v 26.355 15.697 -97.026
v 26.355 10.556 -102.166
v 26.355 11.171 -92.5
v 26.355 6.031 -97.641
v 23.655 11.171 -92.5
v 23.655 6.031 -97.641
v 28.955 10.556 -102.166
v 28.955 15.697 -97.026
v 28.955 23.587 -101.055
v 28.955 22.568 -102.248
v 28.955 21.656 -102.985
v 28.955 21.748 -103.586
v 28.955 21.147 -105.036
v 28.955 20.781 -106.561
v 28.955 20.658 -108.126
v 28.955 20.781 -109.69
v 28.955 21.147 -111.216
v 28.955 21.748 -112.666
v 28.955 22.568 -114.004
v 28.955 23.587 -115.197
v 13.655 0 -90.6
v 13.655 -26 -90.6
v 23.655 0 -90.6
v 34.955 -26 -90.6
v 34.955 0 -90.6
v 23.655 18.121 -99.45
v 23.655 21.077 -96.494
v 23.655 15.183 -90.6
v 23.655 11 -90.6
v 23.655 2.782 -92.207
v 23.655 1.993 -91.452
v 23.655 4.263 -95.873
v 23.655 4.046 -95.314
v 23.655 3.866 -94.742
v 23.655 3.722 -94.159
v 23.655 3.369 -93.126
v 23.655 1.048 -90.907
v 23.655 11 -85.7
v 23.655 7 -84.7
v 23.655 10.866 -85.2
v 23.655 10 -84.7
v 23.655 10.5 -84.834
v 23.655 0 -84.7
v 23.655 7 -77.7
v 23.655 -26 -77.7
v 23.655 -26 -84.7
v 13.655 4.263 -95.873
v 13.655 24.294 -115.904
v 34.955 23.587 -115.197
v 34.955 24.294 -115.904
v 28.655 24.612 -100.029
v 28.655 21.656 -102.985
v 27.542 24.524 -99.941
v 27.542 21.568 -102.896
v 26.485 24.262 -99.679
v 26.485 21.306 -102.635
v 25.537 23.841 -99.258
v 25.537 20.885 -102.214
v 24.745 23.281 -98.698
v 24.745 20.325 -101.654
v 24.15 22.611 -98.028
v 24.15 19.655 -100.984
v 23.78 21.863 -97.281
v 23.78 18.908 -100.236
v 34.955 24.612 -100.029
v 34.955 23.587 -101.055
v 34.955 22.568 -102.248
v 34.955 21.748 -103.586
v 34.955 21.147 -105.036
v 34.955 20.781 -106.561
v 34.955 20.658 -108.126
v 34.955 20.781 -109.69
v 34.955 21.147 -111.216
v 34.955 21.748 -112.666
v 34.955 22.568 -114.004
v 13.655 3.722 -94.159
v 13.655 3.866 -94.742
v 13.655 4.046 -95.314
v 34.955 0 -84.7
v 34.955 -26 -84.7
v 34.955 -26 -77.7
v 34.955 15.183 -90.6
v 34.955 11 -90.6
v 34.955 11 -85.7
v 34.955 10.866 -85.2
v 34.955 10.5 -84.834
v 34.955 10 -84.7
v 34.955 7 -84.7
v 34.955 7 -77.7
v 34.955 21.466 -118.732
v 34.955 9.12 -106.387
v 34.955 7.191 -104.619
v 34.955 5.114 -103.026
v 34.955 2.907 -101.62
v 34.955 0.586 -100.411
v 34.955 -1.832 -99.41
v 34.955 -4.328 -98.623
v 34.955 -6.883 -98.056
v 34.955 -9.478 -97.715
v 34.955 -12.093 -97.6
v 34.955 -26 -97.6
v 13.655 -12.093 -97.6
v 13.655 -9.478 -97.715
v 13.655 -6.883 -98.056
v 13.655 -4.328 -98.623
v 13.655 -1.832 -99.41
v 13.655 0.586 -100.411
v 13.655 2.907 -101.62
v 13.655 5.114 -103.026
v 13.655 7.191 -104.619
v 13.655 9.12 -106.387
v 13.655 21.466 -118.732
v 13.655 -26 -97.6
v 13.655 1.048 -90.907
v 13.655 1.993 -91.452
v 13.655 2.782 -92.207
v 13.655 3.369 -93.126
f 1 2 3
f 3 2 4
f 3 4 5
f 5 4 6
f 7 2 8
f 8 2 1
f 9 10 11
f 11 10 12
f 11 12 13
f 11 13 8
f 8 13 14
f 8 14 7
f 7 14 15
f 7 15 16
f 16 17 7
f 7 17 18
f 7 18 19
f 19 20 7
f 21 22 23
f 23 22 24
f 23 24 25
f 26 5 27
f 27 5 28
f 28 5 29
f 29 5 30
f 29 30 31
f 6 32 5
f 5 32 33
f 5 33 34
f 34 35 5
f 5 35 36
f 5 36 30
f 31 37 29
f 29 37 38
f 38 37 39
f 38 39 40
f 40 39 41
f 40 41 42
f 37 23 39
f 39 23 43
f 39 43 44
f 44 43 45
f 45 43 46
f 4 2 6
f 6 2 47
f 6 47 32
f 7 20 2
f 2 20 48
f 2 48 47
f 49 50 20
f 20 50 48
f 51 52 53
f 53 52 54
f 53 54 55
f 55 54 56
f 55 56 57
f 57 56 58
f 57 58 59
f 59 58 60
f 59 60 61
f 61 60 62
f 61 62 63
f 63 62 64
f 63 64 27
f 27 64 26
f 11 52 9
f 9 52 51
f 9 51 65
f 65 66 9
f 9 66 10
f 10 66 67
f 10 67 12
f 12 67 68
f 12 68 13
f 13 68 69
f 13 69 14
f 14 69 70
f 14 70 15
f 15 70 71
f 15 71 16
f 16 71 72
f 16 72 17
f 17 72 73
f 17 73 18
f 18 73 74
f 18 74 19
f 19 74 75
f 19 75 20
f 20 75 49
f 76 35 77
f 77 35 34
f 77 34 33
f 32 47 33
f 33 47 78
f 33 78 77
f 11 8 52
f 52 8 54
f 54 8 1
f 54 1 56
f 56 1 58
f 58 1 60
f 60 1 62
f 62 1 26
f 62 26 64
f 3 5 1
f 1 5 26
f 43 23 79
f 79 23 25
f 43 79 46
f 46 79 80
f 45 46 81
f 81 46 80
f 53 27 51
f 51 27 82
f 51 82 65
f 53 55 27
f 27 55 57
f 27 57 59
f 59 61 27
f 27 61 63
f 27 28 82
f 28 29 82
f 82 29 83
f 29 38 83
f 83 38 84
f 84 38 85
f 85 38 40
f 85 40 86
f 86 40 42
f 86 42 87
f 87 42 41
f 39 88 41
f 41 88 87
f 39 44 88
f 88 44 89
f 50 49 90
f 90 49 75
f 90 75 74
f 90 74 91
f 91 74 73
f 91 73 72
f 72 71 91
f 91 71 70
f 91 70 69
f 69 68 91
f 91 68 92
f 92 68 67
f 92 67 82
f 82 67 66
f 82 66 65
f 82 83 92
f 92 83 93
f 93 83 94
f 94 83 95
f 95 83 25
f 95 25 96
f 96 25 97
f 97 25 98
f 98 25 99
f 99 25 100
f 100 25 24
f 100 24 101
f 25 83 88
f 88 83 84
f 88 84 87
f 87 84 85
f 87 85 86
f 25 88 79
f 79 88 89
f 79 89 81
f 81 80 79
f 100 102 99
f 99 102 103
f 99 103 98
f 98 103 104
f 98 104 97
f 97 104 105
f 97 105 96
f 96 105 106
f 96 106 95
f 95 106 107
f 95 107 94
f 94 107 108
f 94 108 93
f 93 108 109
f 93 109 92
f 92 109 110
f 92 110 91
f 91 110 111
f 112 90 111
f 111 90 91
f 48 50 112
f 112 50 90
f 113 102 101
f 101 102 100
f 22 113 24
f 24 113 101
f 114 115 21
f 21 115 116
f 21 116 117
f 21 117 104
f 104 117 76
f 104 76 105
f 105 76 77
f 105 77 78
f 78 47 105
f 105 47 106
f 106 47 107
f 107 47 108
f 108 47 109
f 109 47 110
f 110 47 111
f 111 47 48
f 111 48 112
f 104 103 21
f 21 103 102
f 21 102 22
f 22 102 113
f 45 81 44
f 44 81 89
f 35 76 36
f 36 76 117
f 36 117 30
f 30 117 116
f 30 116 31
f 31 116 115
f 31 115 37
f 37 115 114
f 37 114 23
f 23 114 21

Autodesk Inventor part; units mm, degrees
ref_plane "YZ Plane" through (0, 0, 0) normal (1, 0, 0) x (0, 1, 0)
ref_plane "XZ Plane" through (0, 0, 0) normal (0, 1, 0) x (-1, 0, 0)
ref_plane "XY Plane" through (0, 0, 0) normal (0, 0, 1) x (1, 0, 0)
sketch "Sketch1" plane through (0, 0, 0) normal (0, 1, 0) x (-1, 0, 0)
  line L0 (23.4955, 9.8996) -> (-50.8045, 9.8996)
  line L1 (-50.8045, 9.8996) -> (-50.8045, -84.7004)
  line L2 (-50.8045, -84.7004) -> (23.4955, -84.7004)
  line L3 (23.4955, -84.7004) -> (23.4955, 9.8996)
  line L4 (29.4455, 15.7996) -> (-56.7545, 15.7996)
  line L5 (-56.7545, 15.7996) -> (-56.7545, -90.6004)
  line L6 (-56.7545, -90.6004) -> (29.4455, -90.6004)
  line L7 (29.4455, -90.6004) -> (29.4455, 15.7996)
  line L8 (29.4455, -37.4004) -> (-56.7545, -37.4004) construction
  line L9 (-13.6545, -90.6004) -> (-13.6545, 15.7996) construction
  dimension "d0" = 94.6
  dimension "d1" = 74.3
  dimension "d2" = 106.4
  dimension "d3" = 86.2
extrude "Extrusion1" add sketch "Sketch1" along normal blind 6
fillet "Fillet1" radius 4.5 4 edges at (-23.4955, 3, 9.8996) (50.8045, 3, 9.8996) (50.8045, 3, -84.7004) (-23.4955, 3, -84.7004)
fillet "Fillet2" radius 4.5 4 edges at (56.7545, 3, 15.7996) (-29.4455, 3, 15.7996) (56.7545, 3, -90.6004) (-29.4455, 3, -90.6004)
sketch "Sketch2" plane through (0, 0, 0) normal (0, -1, 0) x (1, 0, 0)
  line L0 (50.8045, -80.2004) -> (50.8045, 5.3996) projected
  arc A0 (46.3045, -84.7004) -> (50.8045, -80.2004) centre (46.3045, -80.2004) ccw projected
  line L1 (-18.9955, -84.7004) -> (46.3045, -84.7004) projected
  arc A1 (-23.4955, -80.2004) -> (-18.9955, -84.7004) centre (-18.9955, -80.2004) ccw projected
  line L2 (-23.4955, 5.3996) -> (-23.4955, -80.2004) projected
  arc A2 (-18.9955, 9.8996) -> (-23.4955, 5.3996) centre (-18.9955, 5.3996) ccw projected
  line L3 (46.3045, 9.8996) -> (-18.9955, 9.8996) projected
  arc A3 (50.8045, 5.3996) -> (46.3045, 9.8996) centre (46.3045, 5.3996) ccw projected
  line L4 (43.8045, -77.7004) -> (-16.4955, -77.7004)
  line L5 (-16.4955, -77.7004) -> (-16.4955, 2.8996)
  line L6 (-16.4955, 2.8996) -> (43.8045, 2.8996)
  line L7 (43.8045, 2.8996) -> (43.8045, -77.7004)
  line L8 (13.6545, -84.7004) -> (13.6545, 9.8996) construction
  line L9 (46.3045, 9.8996) -> (-18.9955, 9.8996) construction
  line L10 (50.8045, -80.2004) -> (50.8045, 5.3996) construction
  line L11 (50.8045, -37.4004) -> (-23.4955, -37.4004) construction
  line L12 (56.7545, 11.2996) -> (56.7545, -86.1004) construction
  point P0 (0, 0)
  dimension "d8" = 5.95
  dimension "d9" = 7
  dimension "d10" = 7
extrude "Extrusion2" add sketch "Sketch2" along normal blind 6
fillet "Fillet3" radius 4.5 4 edges at (43.8045, -3, -77.7004) (43.8045, -3, 2.8996) (-16.4955, -3, 2.8996) (-16.4955, -3, -77.7004)
sketch "Sketch3" plane through (0, 0, 0) normal (0, 1, 0) x (1, 0, 0)
  arc A0 (46.3045, -9.8996) -> (50.8045, -5.3996) centre (46.3045, -5.3996) ccw projected
  line L0 (50.8045, 80.2004) -> (50.8045, -5.3996) projected
  arc A1 (50.8045, 80.2004) -> (46.3045, 84.7004) centre (46.3045, 80.2004) ccw projected
  line L1 (-18.9955, 84.7004) -> (46.3045, 84.7004) projected
  arc A2 (-18.9955, 84.7004) -> (-23.4955, 80.2004) centre (-18.9955, 80.2004) ccw projected
  line L2 (-23.4955, -5.3996) -> (-23.4955, 80.2004) projected
  arc A3 (-23.4955, -5.3996) -> (-18.9955, -9.8996) centre (-18.9955, -5.3996) ccw projected
  line L3 (46.3045, -9.8996) -> (-18.9955, -9.8996) projected
  arc A4 (43.8045, 73.2004) -> (39.3045, 77.7004) centre (39.3045, 73.2004) ccw projected
  line L4 (43.8045, 1.6004) -> (43.8045, 73.2004) projected
  arc A5 (39.3045, -2.8996) -> (43.8045, 1.6004) centre (39.3045, 1.6004) ccw projected
  line L5 (-11.9955, -2.8996) -> (39.3045, -2.8996) projected
  arc A6 (-16.4955, 1.6004) -> (-11.9955, -2.8996) centre (-11.9955, 1.6004) ccw projected
  line L6 (-16.4955, 73.2004) -> (-16.4955, 1.6004) projected
  arc A7 (-11.9955, 77.7004) -> (-16.4955, 73.2004) centre (-11.9955, 73.2004) ccw projected
  line L7 (39.3045, 77.7004) -> (-11.9955, 77.7004) projected
  point P0 (0, 0)
extrude "Extrusion3" add sketch "Sketch3" along normal blind 2
ref_plane "Work Plane1" through (-23.4955, 6, -84.7004) normal (0, 0.7071068, -0.7071068) x (1, 0, 0)
sketch "Sketch5" plane through (-23.4955, 6, -84.7004) normal (0, 0.7071068, -0.7071068) x (1, 0, 0)
  line L0 (4.5, 0) -> (69.8, 0) projected
  line L1 (37.15, 0) -> (37.15, -42.3796) construction
  circle A0 centre (37.15, 1.34) radius 1.34 construction
  line L2 (37.15, 1.34) -> (37.15, -18.66) construction
  line L3 (38.49, 1.34) -> (38.49, -18.66)
  line L4 (35.81, -18.66) -> (35.81, 1.34)
  arc A1 (38.49, 1.34) -> (35.81, 1.34) centre (37.15, 1.34) ccw
  arc A2 (35.81, -18.66) -> (38.49, -18.66) centre (37.15, -18.66) ccw
  point P0 (23.4955, -55.6496)
  point P1 (37.15, -8.66)
  dimension "d20" = 2.68
  dimension "d19" = 90
  dimension "d21" = 20
  dimension "d22" = 2.68
extrude "Extrusion5" cut sketch "Sketch5" along normal mid plane 51.82
sketch "Sketch6" plane through (-23.4955, 6, -84.7004) normal (0, 0.7071068, -0.7071068) x (1, 0, 0)
  arc A0 (38.49, 1.34) -> (35.81, 1.34) centre (37.15, 1.34) ccw projected
  line L0 (38.49, 0) -> (38.49, 1.34) projected
  arc A1 (38.49, 1.34) -> (35.81, 1.34) centre (37.15, 1.34) ccw projected
  line L1 (35.81, 1.34) -> (35.81, 0) projected
  line L2 (4.5, 0) -> (35.81, 0) projected
  line L3 (4.5, 2.8284) -> (4.5, 0) projected
  line L4 (4.5, 2.8284) -> (69.8, 2.8284) projected
  line L5 (69.8, 0) -> (69.8, 2.8284) projected
  line L6 (38.49, 0) -> (69.8, 0) projected
  line L7 (75.75, 8.4146) -> (-1.45, 8.4146) projected
  line L8 (74.9473, 2.68) -> (-18.0058, 2.68) construction
  line L9 (0, -55.225) -> (0, 5.3033) construction
  line L10 (90.8097, 9.1284) -> (-67.1811, 9.1284) construction
  line L11 (37.15, 2.68) -> (37.15, 37.6448) construction
  line L12 (58.45, 9.1284) -> (15.85, 9.1284)
  line L13 (15.85, 9.1284) -> (15.85, 13.1284)
  line L14 (15.85, 13.1284) -> (58.45, 13.1284)
  line L15 (58.45, 13.1284) -> (58.45, 9.1284)
  point P0 (23.4955, -55.6496)
  dimension "d25" = 6.3
  dimension "d26" = 42.6
  dimension "d27" = 4
extrude "Extrusion6" add sketch "Sketch6" along normal blind 35 contours L12 L13 L14 L15
sketch "Sketch7" plane through (-23.4955, 30.7487, -109.4492) normal (0, 0.7071068, -0.7071068) x (-1, 0, 0)
  line L0 (-15.85, -13.1284) -> (-15.85, -9.1284) projected
  line L1 (-58.45, -9.1284) -> (-58.45, -13.1284) projected
  point P0 (-23.4955, 55.6496)
  point P1 (-15.85, -11.1284)
  point P2 (-58.45, -11.1284)
  dimension "d30" = 42.6
sketch "Sketch8" plane through (34.9545, -3.2832, -93.9836) normal (1, 0, 0) x (0, 0.7071068, -0.7071068)
  line L0 (-0.0707, 4.7139) -> (-3.2527, 7.8958) projected
  line L1 (0.9899, 12.1385) -> (4.1719, 8.9565) projected
  line L2 (0, 0) -> (35, 0) projected
  line L3 (-0.0707, 4.7139) -> (-14.2134, -9.4288) construction
  line L4 (0, 4) -> (35, 4) projected
  line L5 (0, 4) -> (0, 0) projected
  line L6 (4.1719, 8.9565) -> (-4.7846, 0)
  line L7 (-4.7846, 0) -> (0, 0)
  line L8 (0, 0) -> (0, 4) projected
  line L9 (0, 0) -> (0, 4)
  line L10 (4.1719, 8.9565) -> (4.1719, 4)
  line L11 (0, 4) -> (35, 4) projected
  line L12 (4.1719, 4) -> (0, 4)
  line L13 (-0.0707, 4.7139) -> (4.1719, 8.9565) projected
  point P0 (-64.1349, 68.778)
  point P1 (4.1719, 4)
extrude "Extrusion7" add sketch "Sketch8" against normal blind 42.6
sketch "Sketch9" plane through (34.9545, -6.6664, -90.6004) normal (1, 0, 0) x (0, 0, -1)
  line L0 (0, 6.6664) -> (0, 0) projected
  line L1 (0, 0) -> (28.1319, 28.1319) projected
  line L2 (0, 0) -> (0, 6.6664) projected
  line L3 (0, 0) -> (0, -20)
  line L4 (0, -20) -> (5, -20)
  line L5 (5, -20) -> (5, 5)
  line L6 (0, 0) -> (28.1319, 28.1319) projected
  line L7 (5, 5) -> (0, 0)
  point P0 (-90.6004, 6.6664)
  point P1 (5, 5)
  dimension "d33" = 5
  dimension "d34" = 20
extrude "Extrusion8" add sketch "Sketch9" against normal blind 42.6
sketch "Sketch10" plane through (-7.6455, 24.294, -115.9039) normal (0, 0.7071068, 0.7071068) x (1, 0, 0)
  line L0 (0, -30.8281) -> (42.6, -30.8281) projected
  line L1 (42.6, -30.8281) -> (42.6, 0) projected
  line L2 (0, 0) -> (42.6, 0) projected
  line L3 (0, -30.8281) -> (0, 0) projected
  line L4 (42.6, -30.8281) -> (0, -30.8281) projected
  line L5 (0, -30.8281) -> (5, -30.8281)
  line L6 (5, -30.8281) -> (5, 0)
  line L7 (5, 0) -> (0, 0)
  line L8 (0, 0) -> (0, -30.8281)
  line L9 (42.6, 0) -> (0, 0) projected
  line L10 (37.6, 0) -> (42.6, 0)
  line L11 (42.6, 0) -> (42.6, -30.8281)
  line L12 (42.6, -30.8281) -> (37.6, -30.8281)
  line L13 (37.6, -30.8281) -> (37.6, 0)
  point P0 (7.6455, -99.1349)
  point P1 (37.6, 0)
  point P2 (37.6, -30.8281)
  dimension "d37" = 5
  dimension "d38" = 5
extrude "Extrusion9" add sketch "Sketch10" along normal blind 19 contours L3 L2 L6 L0 | L13 L2 L1 L0
sketch "Sketch11" plane through (-7.6455, 37.729, -102.4689) normal (0, 0.7071068, 0.7071068) x (1, 0, 0)
  line L0 (0, -30.8281) -> (5, -30.8281) projected
  line L1 (5, 0) -> (0, 0) projected
  point P0 (7.6455, -99.1349)
  point P1 (2.5, 0)
  point P2 (2.5, -30.8281)
  dimension "d41" = 30.8281
sketch "Sketch12" plane through (-2.6455, 2.4952, -94.1052) normal (1, 0, 0) x (0, -0.7071068, -0.7071068)
  line L0 (0, 30.8281) -> (0, 0) projected
  line L1 (0, 30.8281) -> (-19, 30.8281) projected
  line L2 (-19, 0) -> (-19, 30.8281) projected
  line L3 (-4.9565, 0) -> (-19, 0) projected
  line L4 (0, 0) -> (-4.9565, 0) projected
  line L5 (-19, 30.8281) -> (-15, 30.8281)
  line L6 (-15, 30.8281) -> (-15, 0)
  line L7 (-15, 0) -> (-19, 0)
  line L8 (-19, 0) -> (-19, 30.8281)
  point P0 (-64.778, -68.3068)
  dimension "d42" = 15
extrude "Extrusion10" add sketch "Sketch12" along normal blind 8.5 contours L6 L3 L2 L1
sketch "Sketch13" plane through (29.9545, 2.4952, -94.1052) normal (-1, 0, 0) x (0, 0.7071068, 0.7071068)
  line L0 (0, 0) -> (0, 30.8281) projected
  line L1 (4.9565, 0) -> (0, 0) projected
  line L2 (4.9565, 0) -> (19, 0) projected
  line L3 (19, 30.8281) -> (19, 0) projected
  line L4 (0, 30.8281) -> (19, 30.8281) projected
  line L5 (19, 30.8281) -> (7.45, 30.8281)
  line L6 (7.45, 30.8281) -> (7.45, 0)
  line L7 (7.45, 0) -> (19, 0)
  line L8 (19, 0) -> (19, 30.8281)
  point P0 (64.778, -68.3068)
  point P1 (7.45, 30.8281)
  dimension "d45" = 7.45
extrude "Extrusion11" add sketch "Sketch13" along normal blind 8.5 contours L4 L3 L2 L6
sketch "Sketch14" plane through (34.9545, -26.6664, -90.6004) normal (1, 0, 0) x (0, 0, -1)
  line L0 (5, 25) -> (28.1319, 48.1319) projected
  line L1 (28.1319, 48.1319) -> (11.8685, 64.3954) projected
  line L2 (-9.9303, 42.5967) -> (11.8685, 64.3954) projected
  line L3 (0, 32.6664) -> (-9.9303, 42.5967) projected
  line L4 (0, 26.6664) -> (0, 32.6664) projected
  line L5 (0, 26.6664) -> (0, 0) projected
  line L6 (0, 0) -> (5, 0) projected
  line L7 (5, 0) -> (5, 25) projected
  line L8 (0, 32.6664) -> (3.5048, 29.1616) construction
  line L9 (-9.9303, 42.5967) -> (11.8685, 64.3954) construction
  line L10 (-7.1018, 39.7682) -> (14.6969, 61.567) construction
  line L11 (0, 32.6664) -> (-1.7632, 34.4296) projected
  line L12 (0, 52.5269) -> (0, 32.6664)
  line L13 (-1.7632, 34.4296) -> (-9.9303, 42.5967) projected
  line L14 (0, 32.6664) -> (-9.9303, 42.5967)
  line L15 (-9.9303, 42.5967) -> (0, 52.5269)
  point P0 (-90.6004, 26.6664)
  point P1 (11.8685, 64.3954)
  point P2 (0, 52.5269)
extrude "Extrusion12" cut sketch "Sketch14" against normal blind 100 contours L12 L3 L2
sketch "Sketch15" plane through (-23.4955, 30.7487, -109.4492) normal (0, 0.7071068, -0.7071068) x (-1, 0, 0)
  line L0 (-58.45, -13.1284) -> (-15.85, -13.1284) projected
  line L1 (-15.85, -13.1284) -> (-15.85, 9.8716) projected
  line L2 (-15.85, 9.8716) -> (-29.35, 9.8716) projected
  line L3 (-29.35, 5.8716) -> (-29.35, 9.8716) projected
  line L4 (-20.85, 5.8716) -> (-29.35, 5.8716) projected
  line L5 (-20.85, -9.1284) -> (-20.85, 5.8716) projected
  line L6 (-20.85, -9.1284) -> (-53.45, -9.1284) projected
  line L7 (-53.45, -9.1284) -> (-53.45, -1.6784) projected
  line L8 (-53.45, -1.6784) -> (-44.95, -1.6784) projected
  line L9 (-44.95, 9.8716) -> (-44.95, -1.6784) projected
  line L10 (-58.45, 9.8716) -> (-44.95, 9.8716) projected
  line L11 (-58.45, -13.1284) -> (-58.45, 9.8716) projected
  line L12 (-58.45, 9.8716) -> (-44.95, 9.8716)
  line L13 (-44.95, 9.8716) -> (-44.95, 2.3216)
  line L14 (-44.95, 2.3216) -> (-58.45, 2.3216)
  line L15 (-58.45, 2.3216) -> (-58.45, 9.8716)
  point P0 (-23.4955, 55.6496)
  point P1 (-51.7, 2.3216)
  point P2 (-58.45, 2.3216)
  dimension "d52" = 4
extrude "Extrusion13" cut sketch "Sketch15" against normal blind 100 contours L11 L10 L9 L14
sketch "Sketch16" plane through (-2.6455, 24.294, -115.9039) normal (0, 0.7071068, 0.7071068) x (1, 0, 0)
  line L0 (32.6, -30.8281) -> (0, -30.8281) projected
  line L1 (8.5, -20.7846) -> (0, -20.7846) projected
  point P0 (2.6455, -99.1349)
  dimension "d55" = 10.0435
sketch "Sketch17" plane through (-2.6455, 6, -90.6004) normal (1, 0, 0) x (0, 0, -1)
  line L0 (0, 14.2037) -> (0, 0) projected
  line L1 (3.5048, -3.5048) -> (0, 0) projected
  line L2 (25.3035, 18.294) -> (3.5048, -3.5048) projected
  line L3 (25.3035, 18.294) -> (14.6969, 28.9006) projected
  line L4 (14.6969, 28.9006) -> (0, 14.2037) projected
  line L5 (5.6261, -1.3835) -> (3.5048, -3.5048)
  line L6 (3.5048, -3.5048) -> (0, 0)
  line L7 (0, 0) -> (2.1213, 2.1213)
  line L8 (2.1213, 2.1213) -> (5.6261, -1.3835)
  point P0 (-90.6004, -6)
  dimension "d56" = 3
extrude "Extrusion14" add sketch "Sketch17" along normal blind 34.75 contours L7 L8 L2 L1
sketch "Sketch18" plane through (0, -6, 0) normal (0, -1, 0) x (1, 0, 0)
  line L0 (-18.9955, -84.7004) -> (46.3045, -84.7004) projected
  line L1 (39.3045, -77.7004) -> (-11.9955, -77.7004) projected
  line L2 (-7.6455, -95.6004) -> (-7.6455, -90.6004) projected
  line L3 (34.9545, -90.6004) -> (34.9545, -95.6004) projected
  line L4 (-18.9955, -84.7004) -> (46.3045, -84.7004) projected
  line L5 (-7.6455, -84.7004) -> (34.9545, -84.7004)
  line L6 (34.9545, -84.7004) -> (34.9545, -77.7004)
  line L7 (34.9545, -77.7004) -> (-7.6455, -77.7004)
  line L8 (-7.6455, -77.7004) -> (-7.6455, -84.7004)
  point P0 (0, 0)
extrude "Extrusion15" add sketch "Sketch18" along normal blind 20
fillet "Fillet5" radius 5 2 edges at (5.8545, 36.3148, -103.8831) (21.4545, 30.9761, -109.2218)
sketch "Sketch19" plane through (0, -6, 0) normal (0, -1, 0) x (1, 0, 0)
  line L0 (34.9545, -118.7324) -> (-7.6455, -118.7324) projected
  line L1 (34.9545, -95.6004) -> (34.9545, -118.7324) projected
  line L2 (34.9545, -77.7004) -> (-7.6455, -77.7004) projected
  line L3 (34.9545, -84.7004) -> (34.9545, -77.7004) projected
  line L4 (-7.6455, -77.7004) -> (-7.6455, -84.7004) projected
  line L5 (-7.6455, -95.6004) -> (-7.6455, -118.7324) projected
  line L6 (34.9545, -118.7324) -> (-7.6455, -118.7324)
  line L7 (-7.6455, -118.7324) -> (-7.6455, -77.7004)
  line L8 (-7.6455, -77.7004) -> (34.9545, -77.7004)
  line L9 (34.9545, -77.7004) -> (34.9545, -118.7324)
  point P0 (0, 0)
  point P1 (34.9545, -84.7004)
  point P2 (-7.6455, -84.7004)
extrude "Extrusion16" cut sketch "Sketch19" along normal mid plane 100 keep common part
sketch "Sketch20" plane through (34.9545, 2, -77.7004) normal (1, 0, 0) x (0, 0, -1)
  line L0 (7, -28) -> (0, -28) projected
  line L1 (7, -2) -> (7, -28) construction
  line L2 (7, -28) -> (31.0161, -28) construction
  line L3 (17.9, -28.6664) -> (12.9, -28.6664) projected
  line L4 (12.9, -28.6664) -> (17.9, -28.6664)
  line L5 (17.9, -28.6664) -> (17.9, -28)
  line L6 (17.9, -28) -> (12.9, -28)
  line L7 (12.9, -28) -> (12.9, -28.6664)
  point P0 (-77.7004, -2)
  point P1 (17.9, -28.6664)
extrude "Extrusion17" cut sketch "Sketch20" against normal blind 100
sketch "Sketch21" plane through (0, 6, 0) normal (0, 1, 0) x (1, 0, 0)
  line L0 (-7.6455, 84.7004) -> (-7.6455, 90.6004) projected
  line L1 (-7.6455, 84.7004) -> (12.3145, 84.7004) projected
  line L2 (12.3145, 84.7004) -> (12.3145, 86.5955) projected
  ellipse E0 centre (13.6545, 86.5955) end of major axis (13.6545, 88.4905) minor radius 1.34 (14.9945, 86.5955) -> (12.3145, 86.5955) ccw projected
  line L3 (14.9945, 86.5955) -> (14.9945, 84.7004) projected
  line L4 (14.9945, 84.7004) -> (34.9545, 84.7004) projected
  line L5 (34.9545, 90.6004) -> (34.9545, 84.7004) projected
  line L6 (34.9545, 90.6004) -> (29.9545, 90.6004) projected
  line L7 (29.9545, 90.6004) -> (-2.6455, 90.6004) projected
  line L8 (-2.6455, 90.6004) -> (-7.6455, 90.6004) projected
  point P0 (0, 0)
extrude "Extrusion18" add sketch "Sketch21" along normal blind 5
sketch "Sketch22" plane through (0, 2, 0) normal (0, 1, 0) x (1, 0, 0)
  line L0 (-7.6455, 77.7004) -> (-7.6455, 84.7004) projected
  line L1 (-7.6455, 77.7004) -> (12.3145, 77.7004) projected
  line L2 (12.3145, 77.7004) -> (12.3145, 82.5955) projected
  ellipse E0 centre (13.6545, 82.5955) end of major axis (13.6545, 84.4905) minor radius 1.34 (14.9945, 82.5955) -> (12.3145, 82.5955) ccw projected
  line L3 (14.9945, 82.5955) -> (14.9945, 77.7004) projected
  line L4 (14.9945, 77.7004) -> (34.9545, 77.7004) projected
  line L5 (34.9545, 84.7004) -> (34.9545, 77.7004) projected
  line L6 (-7.6455, 84.7004) -> (34.9545, 84.7004) projected
  point P0 (0, 0)
extrude "Extrusion19" add sketch "Sketch22" along normal blind 5
sketch "Sketch23" plane through (-23.4955, 6, -84.7004) normal (0, 0.7071068, -0.7071068) x (1, 0, 0)
  arc A0 (38.49, 1.34) -> (35.81, 1.34) centre (37.15, 1.34) ccw projected
  line L0 (37.15, 1.34) -> (37.15, -18.66) construction
  line L1 (35.81, 1.34) -> (35.81, -18.66)
  line L2 (38.49, -18.66) -> (38.49, 1.34)
  arc A1 (38.49, 1.34) -> (35.81, 1.34) centre (37.15, 1.34) ccw
  arc A2 (35.81, -18.66) -> (38.49, -18.66) centre (37.15, -18.66) ccw
  point P0 (23.4955, -55.6496)
  point P1 (37.15, -8.66)
  dimension "d70" = 20
extrude "Extrusion20" cut sketch "Sketch23" along normal mid plane 100
sketch "Sketch24" plane through (-2.6455, 11, -90.6004) normal (1, 0, 0) x (0, 0, -1)
  line L0 (2.1213, -2.8787) -> (5.6261, -6.3835) projected
  line L1 (25.3035, 13.294) -> (5.6261, -6.3835) projected
  line L2 (25.3035, 13.294) -> (14.6969, 23.9006) projected
  line L3 (14.6969, 23.9006) -> (0, 9.2037) projected
  line L4 (0, 9.2037) -> (0, 0) projected
  line L5 (0, 0) -> (0, -5) projected
  line L6 (0, -5) -> (2.1213, -2.8787) projected
  line L7 (0, -0.7574) -> (2.1213, -2.8787)
  line L8 (0, -0.7574) -> (0, -5)
  line L9 (0, -11) -> (-5.9, -11) projected
  line L10 (0, -5) -> (2.1213, -2.8787)
  point P0 (-90.6004, -11)
extrude "Extrusion21" add sketch "Sketch24" along normal blind 33.25 contours L6 L5 L7
sketch "Sketch25" plane through (-23.4955, 6, -84.7004) normal (0, 0.7071068, -0.7071068) x (1, 0, 0)
  line L0 (35.81, 1.34) -> (35.81, -5.6569) projected
  line L1 (38.49, -5.6569) -> (38.49, 1.34) projected
  arc A0 (38.49, 1.34) -> (35.81, 1.34) centre (37.15, 1.34) ccw projected
  line L2 (37.15, 1.34) -> (37.15, -8.66) construction
  line L3 (35.81, 1.34) -> (35.81, -8.66)
  line L4 (38.49, -8.66) -> (38.49, 1.34)
  arc A1 (38.49, 1.34) -> (35.81, 1.34) centre (37.15, 1.34) ccw
  arc A2 (35.81, -8.66) -> (38.49, -8.66) centre (37.15, -8.66) ccw
  point P0 (23.4955, -55.6496)
  point P1 (37.15, -3.66)
  dimension "d75" = 10
extrude "Extrusion22" cut sketch "Sketch25" along normal mid plane 33.25
fillet "Fillet6" radius 1 2 edges at (2.3345, 11, -84.7004) (24.9745, 11, -84.7004)
fillet "Fillet7" radius 1 8 edges at (12.3145, 10.7071, -84.9933) (12.3145, 8.5, -84.7004) (12.3145, 11, -88.1504) (14.9945, 10.7071, -84.9933) (14.9945, 8.5, -84.7004) (14.9945, 11, -88.1504) (14.9945, 7, -81.2004) (12.3145, 7, -81.2004)
sketch "Sketch26" plane through (-7.6455, 0, -90.6004) normal (-1, 0, 0) x (0, 0, 1)
  line L0 (5.9, 0) -> (5.9, -26) projected
  line L1 (12.9, -26) -> (12.9, 7) projected
  line L2 (-5, -1.6664) -> (-5, -26) projected
  line L3 (0, -26) -> (0, 0) projected
  line L4 (-5, -26) -> (0, -26) projected
  line L5 (-5, -1.6664) -> (-28.1319, 21.4655) projected
  line L6 (-5, -26) -> (-5, -1.6664) projected
  line L7 (-5, -26) -> (-7, -26)
  line L8 (-7, -26) -> (-7, 0.3336)
  line L9 (-5, -1.6664) -> (-28.1319, 21.4655) projected
  line L10 (-7, 0.3336) -> (-5, -1.6664)
  line L11 (-5, -1.6664) -> (-5, -26)
  point P0 (90.6004, 0)
  point P1 (-7, 0.3336)
  dimension "d80" = 7
  dimension "d81" = 5
  dimension "d82" = 2
sketch "Sketch27" plane through (0, -26, 0) normal (0, -1, 0) x (1, 0, 0)
  line L0 (-7.6455, -77.7004) -> (-7.6455, -84.7004) projected
  line L1 (34.9545, -84.7004) -> (34.9545, -77.7004) projected
  point P0 (0, 0)
  point P1 (-7.6455, -81.2004)
  point P2 (34.9545, -81.2004)
  dimension "d83" = 42.6
extrude "Extrusion23" add sketch "Sketch26" against normal blind 42.6
fillet "Fillet8" radius 30 1 edges at (13.6545, 0.3336, -97.6004)
ref_plane "Work Plane2" through (13.6545, -2.895, -77.7004) normal (1, 0, 0) x (0, 0, -1)
sketch "Sketch28" plane through (13.6545, -2.895, -77.7004) normal (1, 0, 0) x (0, 0, -1)
  line L0 (45.7087, -33.5387) -> (-16.3366, -33.5387)
  line L1 (-16.3366, -33.5387) -> (-16.3366, 45.9991)
  line L2 (-16.3366, 45.9991) -> (45.7087, 45.9991)
  line L3 (45.7087, 45.9991) -> (45.7087, -33.5387)
  point P0 (-77.7004, 2.895)
extrude "Extrusion24" cut sketch "Sketch28" against normal blind 100
sketch "Sketch29" plane through (13.6545, -2.895, -77.7004) normal (-1, 0, 0) x (0, 0, 1)
  line L0 (-38.2035, 27.189) -> (-18.5261, 7.5116) projected
  line L1 (-30.1071, 35.2854) -> (-32.9356, 32.457) projected
  line L2 (-30.1071, 35.2854) -> (-26.5716, 31.7498) projected
  line L3 (-12.9, 18.0782) -> (-26.5716, 31.7498) projected
  line L4 (-18.5261, 7.5116) -> (-38.2035, 27.189) projected
  line L5 (-30.1071, 35.2854) -> (-38.2035, 27.189)
  line L6 (-38.2035, 27.189) -> (-30.4253, 19.4108)
  line L7 (-30.4253, 19.4108) -> (-22.329, 27.5072)
  line L8 (-22.329, 27.5072) -> (-30.1071, 35.2854)
  point P0 (77.7004, 2.895)
  dimension "d92" = 11
extrude "Extrusion25" cut sketch "Sketch29" against normal blind 100
sketch "Sketch30" plane through (13.6545, -2.895, -77.7004) normal (-1, 0, 0) x (0, 0, 1)
  line L0 (-13.9664, 12.0713) -> (0, -1.895) projected
  line L1 (-13.9664, 12.0713) -> (-13.0897, 12.948) projected
  line L2 (-12.9, 13.895) -> (-12.9, 18.0782) projected
  line L3 (0, 0) -> (0, -1.895) projected
  line L4 (0, 8.895) -> (0, 0) projected
  line L5 (0, 9.895) -> (-7, 9.895) projected
  line L6 (0, 9.895) -> (0, 8.895) projected
  line L7 (-8, 13.895) -> (-12.895, 13.895) projected
  arc A0 (-7, 12.895) -> (-8, 13.895) centre (-8, 12.895) ccw projected
  line L8 (-7, 9.895) -> (-7, 12.895) projected
  line L9 (-12.9, 13.1377) -> (-13.0897, 12.948) projected
  line L10 (-12.9, 13.895) -> (-12.9, 13.1377) projected
  line L11 (-12.9, 13.1377) -> (-12.9, 13.895) projected
  line L12 (-13.9664, 12.0713) -> (-12.9, 13.1377)
  line L13 (-12.9, 18.0782) -> (-12.9, 13.895) projected
  line L14 (-12.9, 13.1377) -> (-12.9, 18.0782)
  line L15 (-12.9, 18.0782) -> (0, 18.0782)
  line L16 (0, 18.0782) -> (0, -1.895)
  line L17 (0, -1.895) -> (-13.9664, 12.0713)
  point P0 (77.7004, 2.895)
extrude "Extrusion26" cut sketch "Sketch30" against normal blind 10
sketch "Sketch31" plane through (13.6545, -2.895, -77.7004) normal (-1, 0, 0) x (0, 0, 1)
  line L0 (-18.5261, 7.5116) -> (-13.9664, 12.0713) projected
  line L1 (-38.2035, 27.189) -> (-18.5261, 7.5116) projected
  line L2 (-18.5261, 7.5116) -> (-13.2581, 12.7795) projected
  line L3 (-13.9664, 12.0713) -> (-18.5261, 7.5116)
  line L4 (-18.5261, 7.5116) -> (-19.9403, 8.9258)
  line L5 (-19.9403, 8.9258) -> (-15.3806, 13.4855)
  line L6 (-15.3806, 13.4855) -> (-13.9664, 12.0713)
  line L7 (-13.9664, 12.0713) -> (0, -1.895) projected
  point P0 (77.7004, 2.895)
  dimension "d97" = 2
extrude "Extrusion27" add sketch "Sketch31" against normal blind 17
sketch "Sketch32" plane through (29.9545, 9.8845, -90.9586) normal (-1, 0, 0) x (0, 0.7071068, 0.7071068)
  line L0 (-1.0016, 2) -> (-7.45, 2) projected
  line L1 (-7.45, 27.8281) -> (-7.45, 2) projected
  line L2 (0, 16.8281) -> (0, 0) projected
  line L3 (0, 0) -> (0, 16.8281) projected
  line L4 (-7.45, 2) -> (0, 2)
  line L5 (0, 2) -> (0, 6.4)
  line L6 (0, 6.4) -> (-7.45, 6.4)
  line L7 (-7.45, 6.4) -> (-7.45, 2)
  point P0 (57.328, -71.3068)
  point P1 (0, 6.4)
  point P2 (-7.45, 6.4)
  point P3 (-1.0016, 2)
  point P4 (0, 2)
  dimension "d100" = 4.4
extrude "Extrusion28" add sketch "Sketch32" along normal blind 3.6
sketch "Sketch33" plane through (21.4545, 15.1832, -90.6004) normal (0, 0.7071068, 0.7071068) x (1, 0, 0)
  line L0 (8.5, 2.9065) -> (8.5, 13.3346) projected
  line L1 (0, 13.3346) -> (0, -3.4935) projected
  line L2 (0, -3.4935) -> (0, 0) projected
  line L3 (0, 0) -> (0, 13.3346) projected
  line L4 (8.5, 13.3346) -> (0, 13.3346)
  line L5 (0, 13.3346) -> (0, -2.958)
  line L6 (0, -2.958) -> (8.5, -2.958)
  line L7 (8.5, -2.958) -> (8.5, 13.3346)
  line L8 (2.2, -2.958) -> (13.5, -2.958) projected
  line L9 (0, 13.3346) -> (1.5, 13.3346)
  line L10 (1.5, 13.3346) -> (1.5, -2.958)
  line L11 (1.5, -2.958) -> (0, -2.958)
  line L12 (0, -2.958) -> (0, 13.3346)
  point P0 (-21.4545, -74.8003)
  point P1 (13.5, 13.3346)
  point P2 (13.5, 0)
  point P3 (1.5, -2.958)
  point P4 (1.5, 13.3346)
  point P5 (0, 13.3346)
  point P6 (0, -2.958)
  dimension "d103" = 7
extrude "Extrusion29" cut sketch "Sketch33" against normal blind 4.35 contours L10 L6 L1 L4
sketch "Sketch34" plane through (13.6545, -2.895, -77.7004) normal (-1, 0, 0) x (0, 0, 1)
  line L0 (-15.3806, 13.4855) -> (-19.9403, 8.9258) projected
  line L1 (-15.3806, 13.4855) -> (0, -1.895) projected
  line L2 (-38.2035, 27.189) -> (-19.9403, 8.9258) projected
  line L3 (-15.3806, 13.4855) -> (-19.9403, 8.9258)
  line L4 (-19.9403, 8.9258) -> (-18.1725, 7.158)
  line L5 (-18.1725, 7.158) -> (-13.6128, 11.7178)
  line L6 (-13.6128, 11.7178) -> (-15.3806, 13.4855)
  point P0 (77.7004, 2.895)
  point P1 (-13.6128, 11.7178)
  dimension "d106" = 2.5
extrude "Extrusion30" cut sketch "Sketch34" against normal blind 10
sketch "Sketch35" plane through (22.9545, 15.1832, -90.6004) normal (0, 0.7071068, 0.7071068) x (1, 0, 0)
  line L0 (12, 13.3346) -> (0, 13.3346) projected
  line L1 (0.7, -2.958) -> (0.7, -6.4228) projected
  line L2 (0.7, -6.4228) -> (0.7, 13.3346)
  line L3 (0.7, 13.3346) -> (-4.3, 13.3346)
  line L4 (-4.3, 13.3346) -> (-4.3, -6.4228)
  line L5 (-4.3, -6.4228) -> (0.7, -6.4228)
  point P0 (-22.9545, -74.8003)
  point P1 (0.7, -2.958)
  point P2 (0, 13.3346)
  dimension "d109" = 5
extrude "Extrusion31" cut sketch "Sketch35" against normal blind 4.5
sketch "Sketch36" plane through (23.6545, -2.895, -77.7004) normal (-1, 0, 0) x (0, 0, 1)
  line L0 (-14.6724, 14.1938) -> (-15.3806, 13.4855) projected
  line L1 (-15.3806, 13.4855) -> (-13.9664, 12.0713) projected
  line L2 (-13.9664, 12.0713) -> (-13.2581, 12.7795) projected
  line L3 (-13.2581, 12.7795) -> (-14.6724, 14.1938) projected
  point P0 (77.7004, 2.895)
extrude "Extrusion32" add sketch "Sketch36" against normal blind 10.75
sketch "Sketch37" plane through (13.6545, -2.895, -77.7004) normal (-1, 0, 0) x (0, 0, 1)
  line L0 (-13.6128, 11.7178) -> (0, -1.895) projected
  line L1 (-13.6128, 11.7178) -> (-18.1725, 7.158) projected
  line L2 (-13.6128, 11.7178) -> (-18.1725, 7.158) projected
  line L3 (-16.7948, 8.5358) -> (-14.6735, 6.4145)
  arc A0 (-3.6254, 1.7304) -> (-14.6735, 6.4145) centre (-14.9391, -9.5833) ccw
  line L4 (0, -1.895) -> (-13.6128, 11.7178) projected
  line L5 (-16.7948, 8.5358) -> (-13.6128, 11.7178)
  line L6 (-13.6128, 11.7178) -> (-3.6254, 1.7304)
  point P0 (77.7004, 2.895)
  point P1 (-16.7948, 8.5358)
  dimension "d114" = 16
  dimension "d115" = 3
  dimension "d116" = 4.5
extrude "Extrusion33" cut sketch "Sketch37" against normal blind 10
fillet "Fillet9" radius 10 1 edges at (18.6545, -4.7901, -77.7004)
fillet "Fillet10" radius 5 1 edges at (23.6545, 23.1979, -101.4436)
fillet "Fillet11" radius 10 1 edges at (32.4545, 16.5158, -108.1258)
sketch "Sketch38" plane through (29.9545, 30.6579, -108.1258) normal (-1, 0, 0) x (0, 0, 1)
  line L0 (7.3738, -21.5159) -> (12.6417, -16.2479) projected
  line L1 (12.6417, -16.2479) -> (5.2679, -8.8742) projected
  line L2 (7.0711, -7.0711) -> (5.2679, -8.8742) projected
  arc A0 (-7.0711, -7.0711) -> (7.0711, -7.0711) centre (0, 0) ccw projected
  line L3 (7.3738, -21.5159) -> (-7.0711, -7.0711) projected
  point P0 (108.1258, -30.6579)
extrude "Extrusion34" add sketch "Sketch38" along normal blind 1
sketch "Sketch39" plane through (28.9545, 9.142, -100.752) normal (0, 0.7071068, -0.7071068) x (-1, 0, 0)
  line L0 (0, 7.45) -> (0, 0) projected
  line L1 (2.6, 0) -> (0, 0) projected
  line L2 (2.6, 7.45) -> (2.6, 0) projected
  line L3 (0, 7.45) -> (2.6, 7.45) projected
  point P0 (28.9545, 64.778)
extrude "Extrusion35" add sketch "Sketch39" along normal blind 2
sketch "Sketch40" plane through (13.6545, -2.895, -77.7004) normal (-1, 0, 0) x (0, 0, 1)
  line L0 (-16.7948, 8.5358) -> (-18.1725, 7.158) projected
  line L1 (-14.6735, 6.4145) -> (-16.7948, 8.5358) projected
  arc A0 (-18.1725, 7.158) -> (-14.6735, 6.4145) centre (-14.5185, 15.7485) ccw
  arc A1 (-3.6254, 1.7304) -> (-14.6735, 6.4145) centre (-14.9391, -9.5833) ccw projected
  point P0 (77.7004, 2.895)
extrude "Extrusion36" cut sketch "Sketch40" against normal blind 10
sketch "Sketch41" plane through (26.3545, 11.2987, -92.3728) normal (0, -0.7071068, -0.7071068) x (-1, 0, 0)
  line L0 (0, 6.4) -> (0, 0) projected
  line L1 (0, 0) -> (2.7, 0) projected
  line L2 (2.7, 0) -> (2.7, 9.8281) projected
  arc A0 (2.7, 9.8281) -> (-2.3, 14.8281) centre (-2.3, 9.8281) ccw projected
  line L3 (-2.3, 14.8281) -> (-2.6, 14.8281) projected
  line L4 (-2.6, 14.8281) -> (-2.6, 6.4) projected
  line L5 (-2.6, 6.4) -> (0, 6.4) projected
  point P0 (26.3545, -73.3068)
extrude "Extrusion37" add sketch "Sketch41" along normal blind 0.78
sketch "Sketch43" plane through (26.3545, 10.7472, -92.9243) normal (0, -0.7071068, -0.7071068) x (-1, 0, 0)
  line L0 (2.7, 0) -> (0, 0) projected
  line L1 (2.7, 0) -> (2.7, 9.8281) projected
  arc A0 (2.7, 9.8281) -> (-2.3, 14.8281) centre (-2.3, 9.8281) ccw projected
  line L2 (-2.3, 14.8281) -> (-2.6, 14.8281) projected
  line L3 (-2.6, 6.4) -> (-2.6, 14.8281) projected
  line L4 (0, 6.4) -> (-2.6, 6.4) projected
  line L5 (0, 0) -> (0, 6.4) projected
  point P0 (26.3545, -73.3068)
extrude "Extrusion39" cut sketch "Sketch43" against normal blind 0.6
sketch "Sketch44" plane through (13.6545, -2.895, -77.7004) normal (-1, 0, 0) x (0, 0, 1)
  arc A0 (-18.1725, 7.158) -> (-14.6735, 6.4145) centre (-14.5185, 15.7485) ccw projected
  line L0 (-38.2035, 27.189) -> (-18.1725, 7.158) projected
  line L1 (-41.0319, 24.3606) -> (-38.2035, 27.189) projected
  line L2 (-28.6868, 12.0154) -> (-41.0319, 24.3606) projected
  arc A1 (-19.9, -9.1978) -> (-28.6868, 12.0154) centre (-49.9, -9.1978) ccw projected
  line L3 (-19.9, -23.105) -> (-19.9, -9.1978) projected
  line L4 (-12.9, -23.105) -> (-19.9, -23.105) projected
  line L5 (-12.9, 2.895) -> (-12.9, -23.105) projected
  line L6 (-7, 2.895) -> (-12.9, 2.895) projected
  line L7 (-7, -23.105) -> (-7, 2.895) projected
  line L8 (0, -23.105) -> (-7, -23.105) projected
  line L9 (0, -6.0372) -> (0, -23.105) projected
  arc A2 (0, -6.0372) -> (-2.9289, 1.0339) centre (-10, -6.0372) ccw projected
  line L10 (-3.6254, 1.7304) -> (-2.9289, 1.0339) projected
  arc A3 (-3.6254, 1.7304) -> (-14.6735, 6.4145) centre (-14.9391, -9.5833) ccw projected
  arc A4 (-12.9, 2.895) -> (-16.459, 6.6171) centre (-17.4091, 2.1461) ccw
  point P0 (77.7004, 2.895)
extrude "Extrusion40" cut sketch "Sketch44" against normal blind 10 contours A0 A3 L10 A2 L9 L8 L7 L6 A4
properties part number "MPM_connector_holder_part_1"
